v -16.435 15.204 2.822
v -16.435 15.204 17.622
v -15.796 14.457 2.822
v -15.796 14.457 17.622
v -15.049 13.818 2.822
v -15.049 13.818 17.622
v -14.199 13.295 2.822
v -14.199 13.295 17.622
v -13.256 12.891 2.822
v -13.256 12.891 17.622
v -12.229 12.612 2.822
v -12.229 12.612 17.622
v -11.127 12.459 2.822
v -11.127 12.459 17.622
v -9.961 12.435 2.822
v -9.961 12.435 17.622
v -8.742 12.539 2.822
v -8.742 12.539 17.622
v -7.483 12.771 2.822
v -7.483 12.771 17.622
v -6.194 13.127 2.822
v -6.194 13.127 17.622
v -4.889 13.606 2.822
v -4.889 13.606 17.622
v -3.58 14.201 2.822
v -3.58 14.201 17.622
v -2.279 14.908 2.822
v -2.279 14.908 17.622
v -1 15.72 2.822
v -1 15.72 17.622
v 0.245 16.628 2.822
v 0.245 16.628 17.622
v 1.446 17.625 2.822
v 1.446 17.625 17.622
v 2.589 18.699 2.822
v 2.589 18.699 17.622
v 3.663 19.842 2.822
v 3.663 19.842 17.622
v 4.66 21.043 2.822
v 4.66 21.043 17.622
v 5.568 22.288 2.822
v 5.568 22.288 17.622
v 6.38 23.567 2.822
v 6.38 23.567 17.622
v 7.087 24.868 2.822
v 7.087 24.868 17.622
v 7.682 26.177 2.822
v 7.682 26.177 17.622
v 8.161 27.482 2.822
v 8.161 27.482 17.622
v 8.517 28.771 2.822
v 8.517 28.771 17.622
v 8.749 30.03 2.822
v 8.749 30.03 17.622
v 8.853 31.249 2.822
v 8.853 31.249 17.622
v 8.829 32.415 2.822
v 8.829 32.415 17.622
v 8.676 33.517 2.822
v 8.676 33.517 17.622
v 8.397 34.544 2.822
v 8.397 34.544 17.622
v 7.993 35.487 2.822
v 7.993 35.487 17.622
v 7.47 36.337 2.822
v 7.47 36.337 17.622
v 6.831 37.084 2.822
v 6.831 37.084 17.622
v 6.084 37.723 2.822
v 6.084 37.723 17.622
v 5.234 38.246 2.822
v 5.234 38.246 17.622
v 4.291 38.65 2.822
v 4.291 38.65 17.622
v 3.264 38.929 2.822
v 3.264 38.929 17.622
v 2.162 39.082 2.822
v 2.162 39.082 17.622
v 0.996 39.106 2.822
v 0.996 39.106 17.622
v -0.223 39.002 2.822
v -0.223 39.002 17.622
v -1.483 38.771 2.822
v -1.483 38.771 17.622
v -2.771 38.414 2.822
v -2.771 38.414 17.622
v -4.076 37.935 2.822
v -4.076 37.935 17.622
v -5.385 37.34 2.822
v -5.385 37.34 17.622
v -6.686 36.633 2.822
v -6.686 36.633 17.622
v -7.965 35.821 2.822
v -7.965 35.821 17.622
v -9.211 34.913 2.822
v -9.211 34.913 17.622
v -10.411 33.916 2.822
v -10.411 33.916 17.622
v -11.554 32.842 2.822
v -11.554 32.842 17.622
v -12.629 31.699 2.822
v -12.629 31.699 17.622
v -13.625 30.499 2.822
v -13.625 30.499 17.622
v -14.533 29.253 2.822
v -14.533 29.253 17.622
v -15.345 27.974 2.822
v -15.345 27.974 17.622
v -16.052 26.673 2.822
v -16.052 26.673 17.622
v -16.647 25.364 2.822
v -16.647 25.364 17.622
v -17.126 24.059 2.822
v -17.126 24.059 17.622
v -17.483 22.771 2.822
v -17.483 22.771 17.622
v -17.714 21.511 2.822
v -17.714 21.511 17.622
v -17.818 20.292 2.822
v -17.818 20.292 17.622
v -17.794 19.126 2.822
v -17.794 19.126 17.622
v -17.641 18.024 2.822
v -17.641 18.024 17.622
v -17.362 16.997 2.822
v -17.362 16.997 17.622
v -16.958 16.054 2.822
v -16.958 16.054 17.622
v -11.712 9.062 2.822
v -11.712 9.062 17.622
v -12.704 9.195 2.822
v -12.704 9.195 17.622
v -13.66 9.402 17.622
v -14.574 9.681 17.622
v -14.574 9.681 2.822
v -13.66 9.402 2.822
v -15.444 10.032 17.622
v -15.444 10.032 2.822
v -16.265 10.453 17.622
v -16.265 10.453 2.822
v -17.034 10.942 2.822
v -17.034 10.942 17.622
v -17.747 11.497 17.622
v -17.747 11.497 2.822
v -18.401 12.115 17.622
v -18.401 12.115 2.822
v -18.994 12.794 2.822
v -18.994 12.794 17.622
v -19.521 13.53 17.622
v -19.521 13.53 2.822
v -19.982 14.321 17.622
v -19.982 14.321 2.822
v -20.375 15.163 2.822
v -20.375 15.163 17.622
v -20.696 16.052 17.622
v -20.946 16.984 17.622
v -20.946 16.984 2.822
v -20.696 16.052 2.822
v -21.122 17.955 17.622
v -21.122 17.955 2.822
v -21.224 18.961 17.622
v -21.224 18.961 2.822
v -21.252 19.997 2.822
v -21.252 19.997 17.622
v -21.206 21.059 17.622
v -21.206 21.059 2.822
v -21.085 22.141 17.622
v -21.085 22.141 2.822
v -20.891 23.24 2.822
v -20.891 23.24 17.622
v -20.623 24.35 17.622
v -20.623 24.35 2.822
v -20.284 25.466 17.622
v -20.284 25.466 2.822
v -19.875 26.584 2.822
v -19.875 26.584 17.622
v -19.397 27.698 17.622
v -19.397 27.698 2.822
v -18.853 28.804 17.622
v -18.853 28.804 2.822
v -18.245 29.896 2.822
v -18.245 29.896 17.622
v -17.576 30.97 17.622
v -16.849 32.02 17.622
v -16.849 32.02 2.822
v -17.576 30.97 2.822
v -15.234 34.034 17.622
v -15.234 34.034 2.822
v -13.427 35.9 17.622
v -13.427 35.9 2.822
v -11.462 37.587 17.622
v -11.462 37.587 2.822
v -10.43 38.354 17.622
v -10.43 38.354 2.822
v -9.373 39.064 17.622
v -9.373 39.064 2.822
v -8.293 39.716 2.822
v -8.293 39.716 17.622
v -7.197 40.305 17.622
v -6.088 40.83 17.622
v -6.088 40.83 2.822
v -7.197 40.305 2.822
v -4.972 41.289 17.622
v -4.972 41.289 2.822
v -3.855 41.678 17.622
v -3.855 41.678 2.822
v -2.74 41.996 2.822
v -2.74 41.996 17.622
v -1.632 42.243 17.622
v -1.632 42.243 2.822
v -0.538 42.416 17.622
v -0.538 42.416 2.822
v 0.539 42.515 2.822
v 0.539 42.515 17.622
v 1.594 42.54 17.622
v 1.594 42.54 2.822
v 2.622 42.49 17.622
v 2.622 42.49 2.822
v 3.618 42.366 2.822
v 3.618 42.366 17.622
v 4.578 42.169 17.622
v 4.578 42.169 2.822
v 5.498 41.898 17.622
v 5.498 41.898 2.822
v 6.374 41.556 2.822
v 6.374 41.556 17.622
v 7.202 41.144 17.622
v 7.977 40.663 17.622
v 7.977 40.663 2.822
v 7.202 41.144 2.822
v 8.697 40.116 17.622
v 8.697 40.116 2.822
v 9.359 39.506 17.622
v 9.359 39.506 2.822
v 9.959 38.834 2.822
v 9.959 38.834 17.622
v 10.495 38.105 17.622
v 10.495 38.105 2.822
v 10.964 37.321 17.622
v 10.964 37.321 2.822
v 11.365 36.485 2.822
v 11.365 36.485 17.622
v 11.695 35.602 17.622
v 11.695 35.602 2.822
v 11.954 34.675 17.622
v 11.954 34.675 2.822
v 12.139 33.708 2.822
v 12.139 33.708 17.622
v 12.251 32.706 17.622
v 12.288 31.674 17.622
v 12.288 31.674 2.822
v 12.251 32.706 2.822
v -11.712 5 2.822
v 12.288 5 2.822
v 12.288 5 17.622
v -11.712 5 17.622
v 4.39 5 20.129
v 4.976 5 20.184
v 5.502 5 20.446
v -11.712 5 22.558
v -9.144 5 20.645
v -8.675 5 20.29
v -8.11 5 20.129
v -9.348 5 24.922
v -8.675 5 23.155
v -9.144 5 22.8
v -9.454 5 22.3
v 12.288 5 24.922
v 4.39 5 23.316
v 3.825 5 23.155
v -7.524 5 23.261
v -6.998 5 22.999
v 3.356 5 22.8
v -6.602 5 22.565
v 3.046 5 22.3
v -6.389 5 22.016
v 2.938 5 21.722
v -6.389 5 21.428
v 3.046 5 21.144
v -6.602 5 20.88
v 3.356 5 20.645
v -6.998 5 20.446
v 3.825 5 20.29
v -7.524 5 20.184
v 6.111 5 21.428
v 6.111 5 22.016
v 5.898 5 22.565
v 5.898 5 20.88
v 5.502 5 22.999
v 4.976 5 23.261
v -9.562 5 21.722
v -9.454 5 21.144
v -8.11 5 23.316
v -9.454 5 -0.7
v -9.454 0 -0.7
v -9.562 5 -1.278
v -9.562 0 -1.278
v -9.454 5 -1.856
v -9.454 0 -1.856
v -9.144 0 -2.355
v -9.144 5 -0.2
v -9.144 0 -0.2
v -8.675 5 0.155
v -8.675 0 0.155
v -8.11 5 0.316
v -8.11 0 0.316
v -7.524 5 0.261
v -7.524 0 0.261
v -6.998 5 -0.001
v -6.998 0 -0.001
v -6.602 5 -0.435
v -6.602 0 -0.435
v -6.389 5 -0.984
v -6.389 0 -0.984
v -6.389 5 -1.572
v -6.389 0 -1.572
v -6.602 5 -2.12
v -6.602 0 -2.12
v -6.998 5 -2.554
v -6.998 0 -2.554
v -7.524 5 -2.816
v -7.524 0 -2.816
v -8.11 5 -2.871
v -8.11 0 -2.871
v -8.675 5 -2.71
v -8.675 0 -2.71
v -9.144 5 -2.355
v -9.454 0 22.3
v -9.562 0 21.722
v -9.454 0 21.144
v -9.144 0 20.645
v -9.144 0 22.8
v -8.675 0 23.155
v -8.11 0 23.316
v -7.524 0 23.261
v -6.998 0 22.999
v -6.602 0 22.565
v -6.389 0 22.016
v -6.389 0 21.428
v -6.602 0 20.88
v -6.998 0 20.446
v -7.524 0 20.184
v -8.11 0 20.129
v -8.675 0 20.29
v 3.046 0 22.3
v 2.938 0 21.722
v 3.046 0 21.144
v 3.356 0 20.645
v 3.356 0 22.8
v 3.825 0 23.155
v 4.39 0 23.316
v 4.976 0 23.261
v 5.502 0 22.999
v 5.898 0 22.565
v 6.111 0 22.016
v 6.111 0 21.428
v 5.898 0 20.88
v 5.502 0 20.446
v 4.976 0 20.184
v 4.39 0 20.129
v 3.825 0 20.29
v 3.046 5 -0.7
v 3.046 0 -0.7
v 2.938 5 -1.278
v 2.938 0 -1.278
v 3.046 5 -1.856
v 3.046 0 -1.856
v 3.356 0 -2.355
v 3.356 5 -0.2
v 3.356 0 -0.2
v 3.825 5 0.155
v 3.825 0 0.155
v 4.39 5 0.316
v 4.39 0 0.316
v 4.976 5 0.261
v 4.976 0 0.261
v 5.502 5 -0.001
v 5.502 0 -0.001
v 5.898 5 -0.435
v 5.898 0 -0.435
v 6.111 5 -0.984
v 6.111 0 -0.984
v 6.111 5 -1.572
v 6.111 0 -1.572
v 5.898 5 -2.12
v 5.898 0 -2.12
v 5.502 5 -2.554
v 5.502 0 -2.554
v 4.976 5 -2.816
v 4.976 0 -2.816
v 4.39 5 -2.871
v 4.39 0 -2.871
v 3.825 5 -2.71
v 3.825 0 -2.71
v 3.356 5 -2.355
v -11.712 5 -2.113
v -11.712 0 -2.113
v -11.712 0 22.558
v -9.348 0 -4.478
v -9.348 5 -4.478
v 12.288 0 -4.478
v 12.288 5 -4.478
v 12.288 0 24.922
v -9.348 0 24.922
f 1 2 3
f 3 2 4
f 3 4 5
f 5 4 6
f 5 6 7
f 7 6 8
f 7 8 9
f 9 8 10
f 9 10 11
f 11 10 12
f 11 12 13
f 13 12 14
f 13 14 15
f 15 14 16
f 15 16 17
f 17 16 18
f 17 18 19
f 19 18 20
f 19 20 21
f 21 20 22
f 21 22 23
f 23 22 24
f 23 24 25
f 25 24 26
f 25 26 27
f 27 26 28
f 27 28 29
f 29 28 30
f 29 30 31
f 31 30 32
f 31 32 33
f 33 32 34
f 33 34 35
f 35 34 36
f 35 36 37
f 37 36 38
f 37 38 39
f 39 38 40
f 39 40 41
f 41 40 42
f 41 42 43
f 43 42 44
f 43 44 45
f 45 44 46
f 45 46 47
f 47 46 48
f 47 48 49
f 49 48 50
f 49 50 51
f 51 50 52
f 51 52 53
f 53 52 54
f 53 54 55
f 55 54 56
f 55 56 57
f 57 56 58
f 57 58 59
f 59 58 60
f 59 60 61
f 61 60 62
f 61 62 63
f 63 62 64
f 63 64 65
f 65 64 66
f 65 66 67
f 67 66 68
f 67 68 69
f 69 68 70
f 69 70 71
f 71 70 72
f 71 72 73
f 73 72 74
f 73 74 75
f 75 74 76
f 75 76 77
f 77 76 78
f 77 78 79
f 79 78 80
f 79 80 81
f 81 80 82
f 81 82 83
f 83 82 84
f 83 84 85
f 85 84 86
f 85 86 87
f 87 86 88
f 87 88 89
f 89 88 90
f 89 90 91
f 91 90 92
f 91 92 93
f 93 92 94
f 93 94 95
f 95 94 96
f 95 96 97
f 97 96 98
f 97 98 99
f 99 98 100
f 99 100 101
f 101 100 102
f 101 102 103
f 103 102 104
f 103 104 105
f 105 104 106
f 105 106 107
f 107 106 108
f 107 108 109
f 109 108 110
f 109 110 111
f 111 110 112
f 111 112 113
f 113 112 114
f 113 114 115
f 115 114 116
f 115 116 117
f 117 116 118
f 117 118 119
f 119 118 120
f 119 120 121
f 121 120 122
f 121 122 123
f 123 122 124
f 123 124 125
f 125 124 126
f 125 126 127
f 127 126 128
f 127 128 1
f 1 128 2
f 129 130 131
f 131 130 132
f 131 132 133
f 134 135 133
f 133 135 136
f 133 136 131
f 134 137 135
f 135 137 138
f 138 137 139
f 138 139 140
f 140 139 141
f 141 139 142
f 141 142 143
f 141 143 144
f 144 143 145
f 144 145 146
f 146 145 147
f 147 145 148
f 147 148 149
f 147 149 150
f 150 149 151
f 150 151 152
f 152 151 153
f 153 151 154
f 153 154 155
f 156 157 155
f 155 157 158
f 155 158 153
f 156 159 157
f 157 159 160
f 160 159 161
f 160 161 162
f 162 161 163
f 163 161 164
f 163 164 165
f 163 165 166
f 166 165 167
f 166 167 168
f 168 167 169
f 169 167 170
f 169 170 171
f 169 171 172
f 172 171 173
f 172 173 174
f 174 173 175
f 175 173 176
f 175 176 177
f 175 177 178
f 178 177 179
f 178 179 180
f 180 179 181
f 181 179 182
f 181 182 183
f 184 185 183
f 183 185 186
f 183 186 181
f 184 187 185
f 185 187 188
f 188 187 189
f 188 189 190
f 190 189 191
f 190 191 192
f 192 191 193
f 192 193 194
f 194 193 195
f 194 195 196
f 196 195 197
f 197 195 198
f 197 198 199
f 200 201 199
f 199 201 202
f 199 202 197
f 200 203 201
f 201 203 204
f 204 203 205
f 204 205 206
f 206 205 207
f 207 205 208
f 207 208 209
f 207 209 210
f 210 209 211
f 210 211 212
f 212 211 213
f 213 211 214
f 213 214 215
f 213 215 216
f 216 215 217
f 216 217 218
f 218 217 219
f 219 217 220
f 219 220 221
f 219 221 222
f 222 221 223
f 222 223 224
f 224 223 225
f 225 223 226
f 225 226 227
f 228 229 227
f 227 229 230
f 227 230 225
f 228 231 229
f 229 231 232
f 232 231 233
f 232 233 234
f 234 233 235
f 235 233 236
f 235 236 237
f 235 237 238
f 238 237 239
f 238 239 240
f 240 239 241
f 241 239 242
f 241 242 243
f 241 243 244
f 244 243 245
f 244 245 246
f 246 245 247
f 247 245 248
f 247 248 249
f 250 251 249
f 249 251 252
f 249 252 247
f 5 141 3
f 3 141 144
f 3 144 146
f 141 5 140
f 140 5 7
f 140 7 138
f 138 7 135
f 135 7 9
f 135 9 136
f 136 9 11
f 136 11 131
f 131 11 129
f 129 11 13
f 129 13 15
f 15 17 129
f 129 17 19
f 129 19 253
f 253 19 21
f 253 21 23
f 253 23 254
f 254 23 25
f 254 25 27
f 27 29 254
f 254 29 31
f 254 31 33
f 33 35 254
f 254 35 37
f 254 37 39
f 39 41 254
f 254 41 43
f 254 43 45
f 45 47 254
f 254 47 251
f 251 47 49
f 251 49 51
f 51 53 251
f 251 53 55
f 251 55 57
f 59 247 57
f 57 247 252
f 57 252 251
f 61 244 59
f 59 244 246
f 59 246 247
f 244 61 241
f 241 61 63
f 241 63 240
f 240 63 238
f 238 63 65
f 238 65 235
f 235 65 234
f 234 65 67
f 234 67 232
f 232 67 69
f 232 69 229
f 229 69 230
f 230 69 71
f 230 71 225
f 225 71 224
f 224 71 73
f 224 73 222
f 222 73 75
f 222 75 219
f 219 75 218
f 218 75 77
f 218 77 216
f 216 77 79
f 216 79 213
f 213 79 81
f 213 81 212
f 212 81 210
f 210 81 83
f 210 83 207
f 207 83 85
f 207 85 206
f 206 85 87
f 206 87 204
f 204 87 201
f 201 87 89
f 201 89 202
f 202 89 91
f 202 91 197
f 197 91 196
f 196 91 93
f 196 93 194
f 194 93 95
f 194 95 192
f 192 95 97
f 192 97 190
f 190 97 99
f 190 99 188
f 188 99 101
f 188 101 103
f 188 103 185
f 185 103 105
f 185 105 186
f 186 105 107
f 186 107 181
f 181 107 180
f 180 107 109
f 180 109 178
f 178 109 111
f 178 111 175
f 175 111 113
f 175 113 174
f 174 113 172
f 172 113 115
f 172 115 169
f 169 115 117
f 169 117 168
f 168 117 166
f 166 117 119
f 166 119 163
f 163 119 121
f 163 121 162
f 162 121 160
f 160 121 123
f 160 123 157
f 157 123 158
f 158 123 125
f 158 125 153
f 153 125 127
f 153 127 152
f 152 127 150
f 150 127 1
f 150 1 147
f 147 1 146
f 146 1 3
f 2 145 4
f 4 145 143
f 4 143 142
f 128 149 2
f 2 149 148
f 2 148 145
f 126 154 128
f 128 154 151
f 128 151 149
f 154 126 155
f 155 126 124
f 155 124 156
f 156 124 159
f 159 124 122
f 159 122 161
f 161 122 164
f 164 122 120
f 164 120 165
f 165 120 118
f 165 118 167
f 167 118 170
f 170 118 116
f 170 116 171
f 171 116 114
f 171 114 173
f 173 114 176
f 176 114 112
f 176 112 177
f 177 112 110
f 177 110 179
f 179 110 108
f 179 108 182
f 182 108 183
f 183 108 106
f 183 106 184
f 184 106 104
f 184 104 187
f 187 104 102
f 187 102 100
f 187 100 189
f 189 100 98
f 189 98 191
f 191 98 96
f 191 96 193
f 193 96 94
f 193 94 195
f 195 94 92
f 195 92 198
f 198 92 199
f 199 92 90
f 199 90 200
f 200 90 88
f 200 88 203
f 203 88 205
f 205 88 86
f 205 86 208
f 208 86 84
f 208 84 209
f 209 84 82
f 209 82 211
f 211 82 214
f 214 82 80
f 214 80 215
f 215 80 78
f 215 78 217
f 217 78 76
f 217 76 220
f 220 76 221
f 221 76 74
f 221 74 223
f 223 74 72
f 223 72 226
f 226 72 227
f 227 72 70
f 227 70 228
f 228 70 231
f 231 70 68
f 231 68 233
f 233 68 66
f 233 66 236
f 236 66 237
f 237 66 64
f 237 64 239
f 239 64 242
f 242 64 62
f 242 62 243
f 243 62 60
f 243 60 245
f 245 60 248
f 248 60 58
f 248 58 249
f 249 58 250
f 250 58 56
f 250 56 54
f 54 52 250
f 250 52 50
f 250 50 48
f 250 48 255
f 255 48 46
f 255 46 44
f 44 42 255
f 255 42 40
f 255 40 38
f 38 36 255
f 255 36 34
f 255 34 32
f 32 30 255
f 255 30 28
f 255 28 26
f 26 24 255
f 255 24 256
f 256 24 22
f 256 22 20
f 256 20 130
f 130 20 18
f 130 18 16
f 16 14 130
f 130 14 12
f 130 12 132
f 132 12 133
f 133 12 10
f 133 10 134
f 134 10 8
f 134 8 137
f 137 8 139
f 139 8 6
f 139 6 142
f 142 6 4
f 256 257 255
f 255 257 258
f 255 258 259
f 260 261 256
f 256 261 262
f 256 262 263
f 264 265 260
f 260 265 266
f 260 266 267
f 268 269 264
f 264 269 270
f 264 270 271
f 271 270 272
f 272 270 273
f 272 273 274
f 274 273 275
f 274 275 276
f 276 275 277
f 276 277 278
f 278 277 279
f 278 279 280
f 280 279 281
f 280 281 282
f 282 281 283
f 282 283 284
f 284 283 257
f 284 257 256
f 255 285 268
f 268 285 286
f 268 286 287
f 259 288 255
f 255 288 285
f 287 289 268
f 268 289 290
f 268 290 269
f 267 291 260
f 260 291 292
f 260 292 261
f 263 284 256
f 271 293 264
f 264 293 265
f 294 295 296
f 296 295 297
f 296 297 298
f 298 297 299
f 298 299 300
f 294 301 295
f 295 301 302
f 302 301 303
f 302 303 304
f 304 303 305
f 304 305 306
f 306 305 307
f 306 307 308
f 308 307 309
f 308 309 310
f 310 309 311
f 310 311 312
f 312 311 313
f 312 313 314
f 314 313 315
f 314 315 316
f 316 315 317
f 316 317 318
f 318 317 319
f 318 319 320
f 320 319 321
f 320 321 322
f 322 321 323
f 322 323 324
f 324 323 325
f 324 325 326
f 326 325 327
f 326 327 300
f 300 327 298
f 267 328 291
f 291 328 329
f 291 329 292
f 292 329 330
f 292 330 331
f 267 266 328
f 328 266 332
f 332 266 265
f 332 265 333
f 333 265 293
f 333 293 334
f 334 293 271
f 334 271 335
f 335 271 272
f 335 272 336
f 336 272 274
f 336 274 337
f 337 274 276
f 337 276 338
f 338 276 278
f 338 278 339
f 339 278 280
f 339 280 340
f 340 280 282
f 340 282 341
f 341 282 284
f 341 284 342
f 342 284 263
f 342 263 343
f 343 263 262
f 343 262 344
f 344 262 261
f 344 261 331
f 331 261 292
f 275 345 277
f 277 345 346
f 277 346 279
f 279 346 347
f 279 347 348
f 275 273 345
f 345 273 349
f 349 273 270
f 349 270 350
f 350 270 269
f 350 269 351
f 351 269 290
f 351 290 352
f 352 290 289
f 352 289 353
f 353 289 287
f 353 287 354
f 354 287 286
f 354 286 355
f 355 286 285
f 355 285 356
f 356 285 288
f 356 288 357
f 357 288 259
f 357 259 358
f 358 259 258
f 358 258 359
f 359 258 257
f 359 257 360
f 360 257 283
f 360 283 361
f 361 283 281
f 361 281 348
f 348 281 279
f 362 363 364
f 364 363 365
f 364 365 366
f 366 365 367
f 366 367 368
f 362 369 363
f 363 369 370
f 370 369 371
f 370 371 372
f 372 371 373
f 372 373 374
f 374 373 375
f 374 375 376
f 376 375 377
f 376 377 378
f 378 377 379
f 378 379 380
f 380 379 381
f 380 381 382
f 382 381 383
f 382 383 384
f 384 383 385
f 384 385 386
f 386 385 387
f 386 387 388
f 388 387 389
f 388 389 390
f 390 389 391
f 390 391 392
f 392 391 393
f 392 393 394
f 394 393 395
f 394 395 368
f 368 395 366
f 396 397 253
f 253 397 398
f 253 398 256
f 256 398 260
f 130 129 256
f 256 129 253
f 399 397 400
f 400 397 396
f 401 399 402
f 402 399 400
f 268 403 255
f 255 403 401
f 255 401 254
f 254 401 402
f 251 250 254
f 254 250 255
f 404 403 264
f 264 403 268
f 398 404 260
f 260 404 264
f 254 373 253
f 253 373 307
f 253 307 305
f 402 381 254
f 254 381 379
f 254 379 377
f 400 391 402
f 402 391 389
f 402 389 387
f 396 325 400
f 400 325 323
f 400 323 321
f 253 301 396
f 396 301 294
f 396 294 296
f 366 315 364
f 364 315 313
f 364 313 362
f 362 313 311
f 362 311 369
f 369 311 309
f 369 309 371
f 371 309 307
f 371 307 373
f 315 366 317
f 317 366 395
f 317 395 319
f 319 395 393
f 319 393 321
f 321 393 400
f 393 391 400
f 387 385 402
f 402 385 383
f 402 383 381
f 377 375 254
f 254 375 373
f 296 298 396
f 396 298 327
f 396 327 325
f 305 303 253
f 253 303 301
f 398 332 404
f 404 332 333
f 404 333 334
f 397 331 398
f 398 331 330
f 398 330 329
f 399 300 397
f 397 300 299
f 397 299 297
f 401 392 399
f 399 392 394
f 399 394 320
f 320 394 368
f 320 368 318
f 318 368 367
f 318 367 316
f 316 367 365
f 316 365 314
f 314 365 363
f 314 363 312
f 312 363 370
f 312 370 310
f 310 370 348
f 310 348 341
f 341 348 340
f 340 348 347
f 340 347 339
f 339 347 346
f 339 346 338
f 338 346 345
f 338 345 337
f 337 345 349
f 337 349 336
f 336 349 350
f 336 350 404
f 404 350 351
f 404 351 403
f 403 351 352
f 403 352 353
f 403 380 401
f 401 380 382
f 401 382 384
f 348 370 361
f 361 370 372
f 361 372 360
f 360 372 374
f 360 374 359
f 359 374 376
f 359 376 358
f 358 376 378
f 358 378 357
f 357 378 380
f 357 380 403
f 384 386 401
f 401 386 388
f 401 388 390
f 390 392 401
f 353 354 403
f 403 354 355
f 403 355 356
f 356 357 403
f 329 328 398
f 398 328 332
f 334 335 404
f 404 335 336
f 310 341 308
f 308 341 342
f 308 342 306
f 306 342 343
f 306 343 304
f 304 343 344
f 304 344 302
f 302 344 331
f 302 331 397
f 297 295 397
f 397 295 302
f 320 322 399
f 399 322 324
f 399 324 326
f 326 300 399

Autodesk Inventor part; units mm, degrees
ref_plane "YZ Plane" through (0, 0, 0) normal (1, 0, 0) x (0, 1, 0)
ref_plane "XZ Plane" through (0, 0, 0) normal (0, 1, 0) x (-1, 0, 0)
ref_plane "XY Plane" through (0, 0, 0) normal (0, 0, 1) x (1, 0, 0)
sketch "Sketch1" plane through (0, 0, 0) normal (0, 1, 0) x (-1, 0, 0)
  circle A0 centre (7.962, -1.2776) radius 1.6
  circle A1 centre (-4.538, -1.2776) radius 1.6
  circle A2 centre (-4.538, 21.7224) radius 1.6
  circle A3 centre (7.962, 21.7224) radius 1.6
  line L0 (11.712, -2.1134) -> (11.712, 22.5582)
  line L1 (9.3478, -4.4776) -> (11.712, -2.1134)
  line L2 (-12.288, -4.4776) -> (9.3478, -4.4776)
  line L3 (-12.288, 24.9224) -> (-12.288, -4.4776)
  line L4 (9.3478, 24.9224) -> (-12.288, 24.9224)
  line L5 (11.712, 22.5582) -> (9.3478, 24.9224)
  point P0 (0, 0)
  dimension "d0" = 3.75
  dimension "d1" = 3.2
  dimension "d2" = 3.2
  dimension "d3" = 7.75
  dimension "d4" = 7.75
  dimension "d5" = 3.2
  dimension "d6" = 3.2
  dimension "d7" = 3.75
  dimension "d8" = 3.2
  dimension "d9" = 3.2
  dimension "d10" = 3.2
  dimension "d11" = 3.2
extrude "Extrusion1" add sketch "Sketch1" along normal blind 5
sketch "Sketch2" plane through (0, 5, 0) normal (0, 1, 0) x (1, 0, 0)
  line L0 (12.288, -24.9224) -> (12.288, 4.4776) projected
  line L1 (-11.712, -17.6224) -> (12.288, -17.6224)
  line L2 (12.288, -17.6224) -> (12.288, -2.8224)
  line L3 (12.288, -2.8224) -> (-11.712, -2.8224)
  line L4 (-11.712, -2.8224) -> (-11.712, -17.6224)
  circle A0 centre (-7.962, -21.7224) radius 1.6 projected
  circle A1 centre (-7.962, 1.2776) radius 1.6 projected
  line L5 (-11.712, 2.1134) -> (-11.712, -22.5582) projected
  point P0 (0, 0)
  point P1 (-11.712, -10.2224)
  dimension "d14" = 2.5
  dimension "d15" = 2.5
  dimension "d16" = 0
extrude "Extrusion2" add sketch "Sketch2" along normal blind 4 contours L1 L4 L3 L0
sketch "Sketch3" plane through (-11.712, 5, 17.6224) normal (0, 0, 1) x (1, 0, 0)
  ellipse E0 centre (7.2295, 20.7705) end of major axis (-4.0842, 9.4568) minor radius 10
  ellipse E1 centre (7.2295, 20.7705) end of major axis (-6.5591, 6.9819) minor radius 13.5
  line L0 (24, 4) -> (24, 26.9875)
  line L1 (24, 4) -> (46.9875, 4) construction
  line L2 (0, 4) -> (24, 4)
  line L3 (0, 4) -> (0, 4.062)
  point P0 (11.712, -5)
  point P1 (-6.5591, 6.9819)
  point P2 (-8.703, 20.0622)
  point P3 (1.3263, 4)
  point P4 (24, 26.6737)
  dimension "d19" = 10
  dimension "d20" = 16
  dimension "d21" = 13.5
  dimension "d22" = 19.5
  dimension "d26" = 90
extrude "Extrusion3" add sketch "Sketch3" against normal blind 14.8
properties part number "finger_hole_thumb"
